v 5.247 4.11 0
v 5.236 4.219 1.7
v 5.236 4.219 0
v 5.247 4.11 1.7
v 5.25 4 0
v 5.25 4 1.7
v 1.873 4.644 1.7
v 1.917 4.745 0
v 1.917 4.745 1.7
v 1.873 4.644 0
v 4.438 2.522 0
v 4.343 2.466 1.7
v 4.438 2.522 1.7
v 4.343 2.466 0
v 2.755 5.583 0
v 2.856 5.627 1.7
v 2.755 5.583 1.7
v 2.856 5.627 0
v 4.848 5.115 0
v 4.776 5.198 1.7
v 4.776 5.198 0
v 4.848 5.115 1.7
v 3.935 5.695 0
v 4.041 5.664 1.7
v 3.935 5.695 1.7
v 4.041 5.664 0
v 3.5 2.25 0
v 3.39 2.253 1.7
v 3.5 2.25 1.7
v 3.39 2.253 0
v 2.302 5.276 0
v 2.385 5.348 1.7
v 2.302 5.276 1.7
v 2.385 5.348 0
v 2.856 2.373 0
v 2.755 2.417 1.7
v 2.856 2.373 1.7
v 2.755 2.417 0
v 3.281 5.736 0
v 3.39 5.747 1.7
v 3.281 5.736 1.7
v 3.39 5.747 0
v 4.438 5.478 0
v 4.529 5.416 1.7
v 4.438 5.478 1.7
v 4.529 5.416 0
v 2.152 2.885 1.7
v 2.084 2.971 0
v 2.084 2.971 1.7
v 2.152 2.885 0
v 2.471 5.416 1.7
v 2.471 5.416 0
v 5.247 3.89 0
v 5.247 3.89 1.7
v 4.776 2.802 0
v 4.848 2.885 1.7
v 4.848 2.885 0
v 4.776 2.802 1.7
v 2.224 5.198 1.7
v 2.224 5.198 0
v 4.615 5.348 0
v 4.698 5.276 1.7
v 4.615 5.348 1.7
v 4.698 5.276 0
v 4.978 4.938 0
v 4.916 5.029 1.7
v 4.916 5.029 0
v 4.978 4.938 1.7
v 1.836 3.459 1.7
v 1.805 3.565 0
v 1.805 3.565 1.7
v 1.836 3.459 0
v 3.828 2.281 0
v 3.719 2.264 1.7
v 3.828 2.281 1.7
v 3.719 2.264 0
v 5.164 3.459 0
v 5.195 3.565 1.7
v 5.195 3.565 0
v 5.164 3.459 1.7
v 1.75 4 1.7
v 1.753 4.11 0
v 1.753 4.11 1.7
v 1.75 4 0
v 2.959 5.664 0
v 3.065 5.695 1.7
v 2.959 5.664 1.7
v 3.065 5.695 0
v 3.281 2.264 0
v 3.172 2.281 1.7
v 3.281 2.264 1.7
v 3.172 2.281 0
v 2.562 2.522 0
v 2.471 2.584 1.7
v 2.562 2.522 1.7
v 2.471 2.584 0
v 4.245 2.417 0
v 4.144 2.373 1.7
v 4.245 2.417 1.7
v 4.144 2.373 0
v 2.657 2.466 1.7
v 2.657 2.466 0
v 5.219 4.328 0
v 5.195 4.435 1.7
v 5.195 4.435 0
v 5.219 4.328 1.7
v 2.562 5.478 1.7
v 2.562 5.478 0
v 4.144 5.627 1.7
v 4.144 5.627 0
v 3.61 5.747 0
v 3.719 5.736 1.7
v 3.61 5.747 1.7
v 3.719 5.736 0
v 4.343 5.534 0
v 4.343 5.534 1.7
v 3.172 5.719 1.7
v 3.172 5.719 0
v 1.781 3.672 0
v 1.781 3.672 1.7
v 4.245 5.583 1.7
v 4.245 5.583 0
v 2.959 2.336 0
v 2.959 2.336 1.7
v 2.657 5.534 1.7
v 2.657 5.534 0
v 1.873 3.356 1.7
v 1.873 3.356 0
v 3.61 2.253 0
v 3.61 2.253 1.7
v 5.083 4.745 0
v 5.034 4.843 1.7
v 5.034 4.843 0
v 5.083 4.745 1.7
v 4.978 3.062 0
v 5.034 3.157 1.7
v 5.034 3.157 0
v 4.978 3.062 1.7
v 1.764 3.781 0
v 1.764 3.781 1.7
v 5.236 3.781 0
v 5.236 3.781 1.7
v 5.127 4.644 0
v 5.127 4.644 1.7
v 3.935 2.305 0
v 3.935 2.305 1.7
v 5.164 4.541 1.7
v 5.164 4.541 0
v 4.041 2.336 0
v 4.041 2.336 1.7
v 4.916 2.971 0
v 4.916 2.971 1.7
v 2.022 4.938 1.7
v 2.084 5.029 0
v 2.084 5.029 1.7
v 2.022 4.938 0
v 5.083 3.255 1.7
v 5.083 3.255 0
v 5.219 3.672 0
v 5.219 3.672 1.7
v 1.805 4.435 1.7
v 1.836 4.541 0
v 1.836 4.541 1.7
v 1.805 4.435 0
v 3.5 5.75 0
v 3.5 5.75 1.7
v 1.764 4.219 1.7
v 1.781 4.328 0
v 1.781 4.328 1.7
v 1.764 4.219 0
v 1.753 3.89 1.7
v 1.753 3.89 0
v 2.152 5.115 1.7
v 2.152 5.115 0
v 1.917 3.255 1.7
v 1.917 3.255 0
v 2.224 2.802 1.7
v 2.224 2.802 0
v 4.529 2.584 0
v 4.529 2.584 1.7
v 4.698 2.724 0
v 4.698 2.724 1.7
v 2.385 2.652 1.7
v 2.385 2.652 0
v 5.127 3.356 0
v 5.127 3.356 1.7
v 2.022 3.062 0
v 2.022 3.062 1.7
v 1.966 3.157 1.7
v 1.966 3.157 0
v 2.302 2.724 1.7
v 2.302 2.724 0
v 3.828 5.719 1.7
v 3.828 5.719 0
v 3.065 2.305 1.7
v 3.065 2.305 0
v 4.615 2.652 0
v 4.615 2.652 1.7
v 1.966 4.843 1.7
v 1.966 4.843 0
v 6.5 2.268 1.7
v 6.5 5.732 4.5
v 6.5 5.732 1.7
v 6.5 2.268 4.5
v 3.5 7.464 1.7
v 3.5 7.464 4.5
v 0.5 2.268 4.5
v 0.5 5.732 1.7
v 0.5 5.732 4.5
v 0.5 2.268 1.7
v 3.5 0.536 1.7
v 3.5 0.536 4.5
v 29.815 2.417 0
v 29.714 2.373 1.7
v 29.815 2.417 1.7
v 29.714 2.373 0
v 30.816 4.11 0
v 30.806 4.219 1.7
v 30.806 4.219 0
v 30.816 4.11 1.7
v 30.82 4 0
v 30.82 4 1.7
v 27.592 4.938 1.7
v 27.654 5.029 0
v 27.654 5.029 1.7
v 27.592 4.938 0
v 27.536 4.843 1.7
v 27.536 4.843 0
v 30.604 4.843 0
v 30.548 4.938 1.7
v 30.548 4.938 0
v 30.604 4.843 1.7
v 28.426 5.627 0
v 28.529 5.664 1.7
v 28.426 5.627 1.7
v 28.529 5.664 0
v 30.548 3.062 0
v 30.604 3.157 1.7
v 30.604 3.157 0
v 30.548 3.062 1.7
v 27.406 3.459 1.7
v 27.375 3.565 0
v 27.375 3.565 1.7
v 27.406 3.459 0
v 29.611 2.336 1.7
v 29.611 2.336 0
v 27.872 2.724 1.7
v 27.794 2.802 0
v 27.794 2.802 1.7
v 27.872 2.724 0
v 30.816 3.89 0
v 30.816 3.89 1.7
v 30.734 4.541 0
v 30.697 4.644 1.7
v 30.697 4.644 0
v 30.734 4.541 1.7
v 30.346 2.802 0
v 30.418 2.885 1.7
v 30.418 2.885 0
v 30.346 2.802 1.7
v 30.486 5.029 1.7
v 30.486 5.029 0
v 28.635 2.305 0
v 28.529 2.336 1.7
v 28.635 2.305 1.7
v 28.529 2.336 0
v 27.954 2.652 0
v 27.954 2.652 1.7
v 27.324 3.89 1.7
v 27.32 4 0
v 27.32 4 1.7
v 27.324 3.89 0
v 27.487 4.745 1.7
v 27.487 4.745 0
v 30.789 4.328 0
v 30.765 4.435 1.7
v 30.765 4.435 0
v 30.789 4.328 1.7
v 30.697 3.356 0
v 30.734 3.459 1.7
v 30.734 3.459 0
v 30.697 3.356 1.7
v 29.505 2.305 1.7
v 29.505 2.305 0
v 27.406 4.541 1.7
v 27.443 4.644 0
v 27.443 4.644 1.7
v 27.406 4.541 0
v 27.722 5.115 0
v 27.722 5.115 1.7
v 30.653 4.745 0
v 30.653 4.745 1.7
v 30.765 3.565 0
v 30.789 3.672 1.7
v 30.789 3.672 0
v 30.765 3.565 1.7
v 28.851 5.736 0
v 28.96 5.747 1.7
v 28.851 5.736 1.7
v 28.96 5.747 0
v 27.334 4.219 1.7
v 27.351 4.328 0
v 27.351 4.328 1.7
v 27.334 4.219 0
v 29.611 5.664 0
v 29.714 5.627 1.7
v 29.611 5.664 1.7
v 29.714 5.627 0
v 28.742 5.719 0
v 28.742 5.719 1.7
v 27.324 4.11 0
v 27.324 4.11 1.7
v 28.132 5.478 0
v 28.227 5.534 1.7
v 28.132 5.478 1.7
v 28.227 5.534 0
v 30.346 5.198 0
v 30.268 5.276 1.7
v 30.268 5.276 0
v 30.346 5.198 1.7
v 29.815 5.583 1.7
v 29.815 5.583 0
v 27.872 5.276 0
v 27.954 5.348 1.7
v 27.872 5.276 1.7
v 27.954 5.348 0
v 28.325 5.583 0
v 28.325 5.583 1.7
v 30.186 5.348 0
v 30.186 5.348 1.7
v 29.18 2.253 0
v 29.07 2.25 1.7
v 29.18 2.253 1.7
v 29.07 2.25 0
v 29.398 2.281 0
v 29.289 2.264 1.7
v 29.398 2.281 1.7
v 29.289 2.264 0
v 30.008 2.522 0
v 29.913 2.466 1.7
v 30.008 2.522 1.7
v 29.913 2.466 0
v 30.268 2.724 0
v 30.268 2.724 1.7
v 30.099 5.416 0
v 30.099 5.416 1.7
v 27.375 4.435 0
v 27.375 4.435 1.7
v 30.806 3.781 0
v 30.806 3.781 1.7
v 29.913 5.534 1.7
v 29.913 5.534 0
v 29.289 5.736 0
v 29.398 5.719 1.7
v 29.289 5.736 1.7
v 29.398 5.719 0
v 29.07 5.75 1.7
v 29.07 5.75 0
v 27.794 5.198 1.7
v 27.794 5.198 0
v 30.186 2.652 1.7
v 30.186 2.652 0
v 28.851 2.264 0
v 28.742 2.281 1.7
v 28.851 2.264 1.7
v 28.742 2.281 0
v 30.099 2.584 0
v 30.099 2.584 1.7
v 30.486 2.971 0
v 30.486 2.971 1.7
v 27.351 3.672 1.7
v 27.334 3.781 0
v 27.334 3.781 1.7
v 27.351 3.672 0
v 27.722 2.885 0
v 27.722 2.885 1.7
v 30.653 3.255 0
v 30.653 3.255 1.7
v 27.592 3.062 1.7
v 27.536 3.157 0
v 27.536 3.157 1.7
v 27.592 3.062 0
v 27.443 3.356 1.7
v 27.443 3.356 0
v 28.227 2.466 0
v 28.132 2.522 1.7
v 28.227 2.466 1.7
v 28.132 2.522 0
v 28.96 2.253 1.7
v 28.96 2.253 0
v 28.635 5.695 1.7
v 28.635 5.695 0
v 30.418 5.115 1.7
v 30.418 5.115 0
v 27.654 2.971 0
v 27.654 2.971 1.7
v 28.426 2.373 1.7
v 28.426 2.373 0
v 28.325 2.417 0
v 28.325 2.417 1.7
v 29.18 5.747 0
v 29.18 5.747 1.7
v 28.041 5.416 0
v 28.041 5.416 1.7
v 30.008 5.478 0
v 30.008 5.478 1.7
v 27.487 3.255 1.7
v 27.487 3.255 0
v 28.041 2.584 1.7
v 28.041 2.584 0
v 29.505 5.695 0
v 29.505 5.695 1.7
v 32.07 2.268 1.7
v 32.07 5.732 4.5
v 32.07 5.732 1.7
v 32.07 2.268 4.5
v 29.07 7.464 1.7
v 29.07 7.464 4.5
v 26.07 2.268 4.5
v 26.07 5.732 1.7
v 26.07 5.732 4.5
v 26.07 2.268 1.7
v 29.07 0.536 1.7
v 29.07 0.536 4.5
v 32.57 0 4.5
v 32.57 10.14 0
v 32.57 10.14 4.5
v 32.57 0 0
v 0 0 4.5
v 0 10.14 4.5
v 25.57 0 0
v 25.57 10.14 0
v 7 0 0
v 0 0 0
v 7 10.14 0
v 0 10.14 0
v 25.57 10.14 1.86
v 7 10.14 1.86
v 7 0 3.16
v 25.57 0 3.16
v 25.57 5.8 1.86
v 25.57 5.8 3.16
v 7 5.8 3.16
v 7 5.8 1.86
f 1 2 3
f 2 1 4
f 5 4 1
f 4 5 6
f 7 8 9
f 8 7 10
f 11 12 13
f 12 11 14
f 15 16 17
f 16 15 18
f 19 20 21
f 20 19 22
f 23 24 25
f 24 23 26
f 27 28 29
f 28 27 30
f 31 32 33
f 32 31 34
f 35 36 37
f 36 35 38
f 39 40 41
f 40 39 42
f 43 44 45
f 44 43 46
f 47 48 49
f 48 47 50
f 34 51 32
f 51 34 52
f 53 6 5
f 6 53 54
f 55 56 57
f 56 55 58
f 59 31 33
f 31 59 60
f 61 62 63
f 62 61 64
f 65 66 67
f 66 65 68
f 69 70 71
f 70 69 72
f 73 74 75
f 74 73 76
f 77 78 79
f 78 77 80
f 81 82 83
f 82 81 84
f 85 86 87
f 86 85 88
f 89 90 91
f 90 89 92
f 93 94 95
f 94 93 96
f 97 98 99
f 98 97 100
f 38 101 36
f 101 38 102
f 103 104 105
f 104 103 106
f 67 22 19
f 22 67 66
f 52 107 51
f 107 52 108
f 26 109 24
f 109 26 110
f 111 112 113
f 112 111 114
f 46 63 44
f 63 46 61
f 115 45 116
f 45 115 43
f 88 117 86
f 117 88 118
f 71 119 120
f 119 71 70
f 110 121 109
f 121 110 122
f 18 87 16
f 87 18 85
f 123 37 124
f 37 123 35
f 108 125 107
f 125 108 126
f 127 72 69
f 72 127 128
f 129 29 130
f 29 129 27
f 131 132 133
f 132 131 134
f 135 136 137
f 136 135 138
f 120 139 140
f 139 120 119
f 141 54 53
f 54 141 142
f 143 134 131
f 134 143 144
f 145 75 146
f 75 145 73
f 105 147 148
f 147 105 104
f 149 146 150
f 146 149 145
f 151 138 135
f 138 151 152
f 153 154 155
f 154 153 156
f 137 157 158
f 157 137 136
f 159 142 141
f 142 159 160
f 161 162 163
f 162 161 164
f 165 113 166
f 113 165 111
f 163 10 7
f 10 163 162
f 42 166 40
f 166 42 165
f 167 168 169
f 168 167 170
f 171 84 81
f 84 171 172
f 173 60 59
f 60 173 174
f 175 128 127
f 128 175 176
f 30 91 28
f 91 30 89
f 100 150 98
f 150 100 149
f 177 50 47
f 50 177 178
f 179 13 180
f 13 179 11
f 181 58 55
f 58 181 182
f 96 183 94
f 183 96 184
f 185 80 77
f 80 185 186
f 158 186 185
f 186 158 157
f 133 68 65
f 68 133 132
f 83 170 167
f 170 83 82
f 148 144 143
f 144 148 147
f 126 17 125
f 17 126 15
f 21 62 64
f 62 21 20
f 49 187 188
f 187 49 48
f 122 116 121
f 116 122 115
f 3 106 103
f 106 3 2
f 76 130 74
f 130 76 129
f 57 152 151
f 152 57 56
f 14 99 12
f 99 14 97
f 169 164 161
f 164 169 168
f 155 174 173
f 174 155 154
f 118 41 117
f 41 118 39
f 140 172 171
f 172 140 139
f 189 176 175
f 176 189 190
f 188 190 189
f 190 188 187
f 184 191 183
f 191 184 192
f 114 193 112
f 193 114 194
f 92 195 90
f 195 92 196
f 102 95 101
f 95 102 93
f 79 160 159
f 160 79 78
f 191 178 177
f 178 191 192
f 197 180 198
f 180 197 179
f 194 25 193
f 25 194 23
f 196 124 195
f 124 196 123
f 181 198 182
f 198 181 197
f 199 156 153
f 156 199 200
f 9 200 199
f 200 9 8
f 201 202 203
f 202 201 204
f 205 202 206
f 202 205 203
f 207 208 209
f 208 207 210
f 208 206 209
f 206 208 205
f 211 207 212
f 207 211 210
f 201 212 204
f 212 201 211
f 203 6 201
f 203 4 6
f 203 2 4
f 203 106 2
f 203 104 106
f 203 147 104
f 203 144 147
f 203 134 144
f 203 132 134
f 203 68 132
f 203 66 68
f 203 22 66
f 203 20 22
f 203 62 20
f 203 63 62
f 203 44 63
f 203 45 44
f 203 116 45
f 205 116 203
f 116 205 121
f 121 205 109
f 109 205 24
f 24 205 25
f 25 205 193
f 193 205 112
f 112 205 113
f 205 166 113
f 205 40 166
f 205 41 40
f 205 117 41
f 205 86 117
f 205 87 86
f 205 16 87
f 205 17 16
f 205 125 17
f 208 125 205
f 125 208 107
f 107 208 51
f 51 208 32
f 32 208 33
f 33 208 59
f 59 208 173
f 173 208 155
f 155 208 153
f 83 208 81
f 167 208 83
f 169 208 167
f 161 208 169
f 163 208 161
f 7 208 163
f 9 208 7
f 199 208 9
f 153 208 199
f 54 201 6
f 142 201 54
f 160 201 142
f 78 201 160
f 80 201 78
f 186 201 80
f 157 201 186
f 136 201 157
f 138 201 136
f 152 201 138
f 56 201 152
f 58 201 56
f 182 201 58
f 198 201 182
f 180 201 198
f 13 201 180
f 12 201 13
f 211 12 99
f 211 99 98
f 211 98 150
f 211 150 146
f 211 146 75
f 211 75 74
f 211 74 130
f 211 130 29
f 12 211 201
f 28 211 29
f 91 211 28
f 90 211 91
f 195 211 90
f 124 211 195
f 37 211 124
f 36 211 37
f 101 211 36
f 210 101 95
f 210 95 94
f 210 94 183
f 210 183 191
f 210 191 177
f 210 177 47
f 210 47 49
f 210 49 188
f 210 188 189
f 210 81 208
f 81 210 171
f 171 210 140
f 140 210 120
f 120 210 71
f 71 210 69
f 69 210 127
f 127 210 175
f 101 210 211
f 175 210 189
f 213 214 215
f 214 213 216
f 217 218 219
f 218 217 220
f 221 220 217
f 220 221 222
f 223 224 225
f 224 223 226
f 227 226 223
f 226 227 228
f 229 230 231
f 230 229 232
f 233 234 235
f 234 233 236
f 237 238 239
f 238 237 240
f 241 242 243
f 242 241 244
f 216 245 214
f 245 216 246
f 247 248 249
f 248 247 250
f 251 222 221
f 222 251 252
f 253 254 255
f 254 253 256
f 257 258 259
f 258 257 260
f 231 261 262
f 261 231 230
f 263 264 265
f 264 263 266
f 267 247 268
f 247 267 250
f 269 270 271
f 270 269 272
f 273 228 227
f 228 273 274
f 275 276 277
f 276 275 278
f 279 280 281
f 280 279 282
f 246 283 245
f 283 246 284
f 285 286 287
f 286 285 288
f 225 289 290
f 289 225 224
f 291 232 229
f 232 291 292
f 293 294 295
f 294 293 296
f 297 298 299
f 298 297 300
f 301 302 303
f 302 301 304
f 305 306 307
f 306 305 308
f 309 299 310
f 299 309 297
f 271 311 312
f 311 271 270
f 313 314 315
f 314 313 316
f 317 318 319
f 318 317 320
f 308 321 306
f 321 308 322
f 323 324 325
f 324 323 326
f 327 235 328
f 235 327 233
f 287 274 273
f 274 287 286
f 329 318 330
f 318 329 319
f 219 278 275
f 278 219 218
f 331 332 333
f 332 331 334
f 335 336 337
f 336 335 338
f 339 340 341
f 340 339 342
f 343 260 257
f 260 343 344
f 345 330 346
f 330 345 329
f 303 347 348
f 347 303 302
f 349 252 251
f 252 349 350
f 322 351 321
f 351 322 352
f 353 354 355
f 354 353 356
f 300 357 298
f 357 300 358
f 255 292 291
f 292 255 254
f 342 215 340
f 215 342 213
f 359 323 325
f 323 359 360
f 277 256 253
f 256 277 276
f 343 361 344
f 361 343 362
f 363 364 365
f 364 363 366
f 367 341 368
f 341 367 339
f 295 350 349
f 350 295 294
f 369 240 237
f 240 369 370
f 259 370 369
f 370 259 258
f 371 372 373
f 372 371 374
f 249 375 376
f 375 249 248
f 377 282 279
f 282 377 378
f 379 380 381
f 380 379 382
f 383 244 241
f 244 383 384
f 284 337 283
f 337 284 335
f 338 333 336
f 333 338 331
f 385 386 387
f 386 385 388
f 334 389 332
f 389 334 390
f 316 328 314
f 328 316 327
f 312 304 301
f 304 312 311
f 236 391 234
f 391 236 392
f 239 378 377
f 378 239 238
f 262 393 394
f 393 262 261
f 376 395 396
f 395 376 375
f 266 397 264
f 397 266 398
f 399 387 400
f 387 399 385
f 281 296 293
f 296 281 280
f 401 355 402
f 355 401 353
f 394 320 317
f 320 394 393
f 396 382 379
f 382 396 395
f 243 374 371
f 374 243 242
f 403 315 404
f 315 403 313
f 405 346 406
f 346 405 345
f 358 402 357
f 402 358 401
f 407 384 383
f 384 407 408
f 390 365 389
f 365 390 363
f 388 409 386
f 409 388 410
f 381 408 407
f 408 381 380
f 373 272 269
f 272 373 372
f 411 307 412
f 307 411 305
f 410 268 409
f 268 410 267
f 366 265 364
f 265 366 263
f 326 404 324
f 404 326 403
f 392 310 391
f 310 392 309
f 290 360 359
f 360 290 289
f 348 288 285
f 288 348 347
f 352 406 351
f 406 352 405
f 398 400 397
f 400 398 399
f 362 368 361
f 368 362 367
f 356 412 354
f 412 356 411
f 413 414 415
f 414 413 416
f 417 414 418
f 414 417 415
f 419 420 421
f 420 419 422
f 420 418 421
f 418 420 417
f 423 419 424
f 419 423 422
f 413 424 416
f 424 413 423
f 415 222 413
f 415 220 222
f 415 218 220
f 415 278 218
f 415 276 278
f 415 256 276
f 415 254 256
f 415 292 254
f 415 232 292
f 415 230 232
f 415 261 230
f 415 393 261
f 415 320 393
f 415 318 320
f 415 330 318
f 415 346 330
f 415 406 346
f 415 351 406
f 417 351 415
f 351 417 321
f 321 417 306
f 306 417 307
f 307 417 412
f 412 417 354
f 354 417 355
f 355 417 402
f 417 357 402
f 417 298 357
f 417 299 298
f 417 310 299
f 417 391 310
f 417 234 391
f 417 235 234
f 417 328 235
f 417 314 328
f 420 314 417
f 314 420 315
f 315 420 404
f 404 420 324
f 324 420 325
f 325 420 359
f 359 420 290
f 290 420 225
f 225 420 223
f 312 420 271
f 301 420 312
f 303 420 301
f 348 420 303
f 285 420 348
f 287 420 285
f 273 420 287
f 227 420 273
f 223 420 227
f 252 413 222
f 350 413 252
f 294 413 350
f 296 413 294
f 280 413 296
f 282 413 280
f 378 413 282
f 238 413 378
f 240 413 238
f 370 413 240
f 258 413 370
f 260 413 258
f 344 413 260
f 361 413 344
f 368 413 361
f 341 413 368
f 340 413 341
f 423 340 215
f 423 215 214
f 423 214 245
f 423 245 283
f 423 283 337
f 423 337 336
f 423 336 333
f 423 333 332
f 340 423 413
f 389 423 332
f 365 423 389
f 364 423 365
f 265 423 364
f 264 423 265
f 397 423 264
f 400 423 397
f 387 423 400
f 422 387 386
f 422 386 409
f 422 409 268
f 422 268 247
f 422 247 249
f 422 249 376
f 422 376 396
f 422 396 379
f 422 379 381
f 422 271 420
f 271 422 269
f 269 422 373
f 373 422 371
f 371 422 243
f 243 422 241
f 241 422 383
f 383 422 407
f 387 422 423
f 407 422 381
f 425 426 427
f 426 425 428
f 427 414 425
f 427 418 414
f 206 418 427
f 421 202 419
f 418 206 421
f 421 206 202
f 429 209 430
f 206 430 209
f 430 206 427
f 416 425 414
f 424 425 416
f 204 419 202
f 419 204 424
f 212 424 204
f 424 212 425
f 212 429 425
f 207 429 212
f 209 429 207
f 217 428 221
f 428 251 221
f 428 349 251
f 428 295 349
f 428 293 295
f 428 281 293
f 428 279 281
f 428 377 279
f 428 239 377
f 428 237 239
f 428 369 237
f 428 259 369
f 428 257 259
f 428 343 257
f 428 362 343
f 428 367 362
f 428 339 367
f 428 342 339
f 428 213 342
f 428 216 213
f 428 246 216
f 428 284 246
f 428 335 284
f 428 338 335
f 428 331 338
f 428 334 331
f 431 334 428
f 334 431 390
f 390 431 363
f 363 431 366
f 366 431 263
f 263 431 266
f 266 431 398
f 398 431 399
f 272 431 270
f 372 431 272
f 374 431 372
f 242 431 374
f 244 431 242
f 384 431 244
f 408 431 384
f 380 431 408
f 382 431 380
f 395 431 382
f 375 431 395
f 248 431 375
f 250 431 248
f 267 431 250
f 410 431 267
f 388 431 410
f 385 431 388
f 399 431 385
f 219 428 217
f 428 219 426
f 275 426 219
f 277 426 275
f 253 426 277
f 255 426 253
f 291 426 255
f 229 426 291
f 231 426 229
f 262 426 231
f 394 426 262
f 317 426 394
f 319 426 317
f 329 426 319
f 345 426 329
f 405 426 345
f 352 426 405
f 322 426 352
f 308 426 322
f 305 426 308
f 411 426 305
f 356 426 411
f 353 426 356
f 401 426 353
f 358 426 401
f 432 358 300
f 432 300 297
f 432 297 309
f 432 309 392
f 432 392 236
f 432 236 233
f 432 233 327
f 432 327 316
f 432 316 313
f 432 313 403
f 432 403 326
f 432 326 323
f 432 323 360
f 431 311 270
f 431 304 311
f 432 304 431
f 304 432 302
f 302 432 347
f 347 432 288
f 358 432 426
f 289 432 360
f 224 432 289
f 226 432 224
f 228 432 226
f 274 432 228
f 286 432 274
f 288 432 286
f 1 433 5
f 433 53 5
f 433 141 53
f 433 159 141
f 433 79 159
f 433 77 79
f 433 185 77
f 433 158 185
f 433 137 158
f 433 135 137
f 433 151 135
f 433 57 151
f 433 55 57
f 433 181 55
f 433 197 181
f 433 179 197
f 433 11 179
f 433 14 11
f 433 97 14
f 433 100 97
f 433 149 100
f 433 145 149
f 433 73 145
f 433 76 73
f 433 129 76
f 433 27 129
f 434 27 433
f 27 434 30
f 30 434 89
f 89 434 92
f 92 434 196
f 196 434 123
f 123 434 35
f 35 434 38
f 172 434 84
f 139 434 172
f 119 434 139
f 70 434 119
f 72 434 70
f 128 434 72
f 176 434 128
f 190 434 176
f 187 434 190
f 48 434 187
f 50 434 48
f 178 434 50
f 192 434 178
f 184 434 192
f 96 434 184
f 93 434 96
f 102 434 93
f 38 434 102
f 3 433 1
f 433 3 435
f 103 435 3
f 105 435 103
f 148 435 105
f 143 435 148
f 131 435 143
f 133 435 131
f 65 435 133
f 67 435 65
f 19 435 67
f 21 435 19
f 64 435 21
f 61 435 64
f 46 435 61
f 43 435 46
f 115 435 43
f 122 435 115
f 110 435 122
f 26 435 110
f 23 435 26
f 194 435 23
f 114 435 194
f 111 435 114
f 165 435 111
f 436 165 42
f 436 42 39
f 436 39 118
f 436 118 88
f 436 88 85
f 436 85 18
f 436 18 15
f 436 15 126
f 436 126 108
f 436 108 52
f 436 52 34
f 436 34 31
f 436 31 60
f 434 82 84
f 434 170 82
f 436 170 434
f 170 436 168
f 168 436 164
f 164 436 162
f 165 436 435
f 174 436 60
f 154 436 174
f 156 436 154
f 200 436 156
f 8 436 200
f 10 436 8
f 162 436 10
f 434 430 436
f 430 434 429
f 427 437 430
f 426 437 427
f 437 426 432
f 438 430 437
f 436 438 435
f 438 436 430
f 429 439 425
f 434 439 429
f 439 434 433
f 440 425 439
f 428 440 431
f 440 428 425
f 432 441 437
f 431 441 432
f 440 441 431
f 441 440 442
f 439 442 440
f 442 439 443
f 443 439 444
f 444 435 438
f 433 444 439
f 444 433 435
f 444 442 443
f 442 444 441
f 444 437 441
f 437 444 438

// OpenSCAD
// file: ../assets/usb-charger/configurations.scad
usb_charger_asset_electronic_card_x_size = 17.57;
usb_charger_asset_electronic_card_y_size = 27.85;
usb_charger_asset_electronic_card_z_size = 0.87;
usb_charger_asset_usb_port_x_size = 9;
usb_charger_asset_usb_port_y_size = 7.39;
usb_charger_asset_usb_port_z_size = 3.29;
usb_charger_asset_draw_rounded_usb = true;
usb_charger_asset_usb_port_x_offset = 4.5;
usb_charger_asset_usb_port_y_offset = -1.36;
usb_charger_asset_fn = 20;
// file: ../configurations/global.scad
// external size
case_external_x_size = 90;
case_external_y_size = 140;
case_external_z_size = 38;
case_external_panes_thickness = 4.8;

facade_front_round_edges_radius = 5;
facade_throws_margin = 5;

facade_front_fixation_throws_diameter = 3.5;

// facade corners
facade_corners_offset_lenght = 9;
facade_corners_main_x_size = 19;
facade_corners_main_y_size = 19;
facade_corners_main_thickness = 11;

facade_fn = 100;


facade_controller_coords = [
    case_external_x_size / 2,
    case_external_y_size / 2 - 28,
];


// Screen frames
screen_frame_electronic_board_margin = 3;
screen_frame_throw_diameter = 3.5;
screen_frame_piece_z_size = 1.5;
screen_frame_piece_glass_embedding_margin = 1;
screen_frame_piece_glass_embedding_z_depth = 1;
screen_frame_facade_piece_z_size = 1;
screen_frame_fn = 100;

screen_glass_visible_zone_x_margin = 0.7;
screen_glass_visible_zone_y_margin = 0.7;
screen_glass_z_size = 1;

facade_screen_coords = [
    case_external_x_size / 2,
    case_external_y_size / 2 + 25,
];


// Generics
insert_throw_diameter = 4.2;
insert_throw_length = 6 + 2;


// Controller facade
controller_breadboard_x_size_point = 28;
controller_breadboard_y_size_point = 9;

controller_facade_z_size = 2;
controller_facade_button_throw_margin = 1;

controller_facade_border_rounded_border_1 = 5;
controller_facade_border_rounded_border_2 = 4;

controller_facade_with_border_x_size = 78;
controller_facade_with_border_y_size = 45;

controller_facade_border_throws_margin = 5;
controller_facade_border_fn = 80;


// Cross Button
controller_cross_button_x_y_size = 20;
controller_cross_button_z_size = 4;
controller_cross_button_thickness = 6;
controller_cross_button_round_edges_radius = 1;
controller_cross_button_support_x_y_size = 22;
controller_cross_button_support_z_size = 1;
controller_cross_button_fn = 150;


// A and B Buttons
controller_a_b_button_diameter = 7;
controller_a_b_button_z_size = 4;
controller_a_b_button_support_diameter = 9;
controller_a_b_button_support_z_size = 1;
controller_a_b_button_fn = 80;


// small Buttons
controller_small_button_diameter = 5;
controller_small_button_z_size = 3;
controller_small_button_support_diameter = 7;
controller_small_button_support_z_size = 1;
controller_small_button_fn = 80;

// Directional cross
controller_directional_cross_points_coords = [6, 5];
controller_start_button_points_coords = [14, 3];
controller_select_button_points_coords = [18, 3];
controller_menu_button_points_coords = [14, 7];
controller_option_button_points_coords = [18, 7];
controller_a_button_points_coords = [23, 4];
controller_b_button_points_coords = [27, 6];
controller_bolt_throws_list = [
    [2, 2],
    [2, 8],
    [10, 2],
    [10, 8],
    [27, 2],
    [23, 8],
];


// usb charget holder
usb_charger_support_total_x_size = 17.57 + 15;
usb_charger_support_total_y_size = 12;
usb_charger_support_total_z_size = 2;


usb_charger_fixation_support_z_size = 4.5;
usb_charger_encaps_x_size = 17.57 + 1;
usb_charger_encaps_y_size = 27.85 + 1;
usb_charger_encaps_z_size = 1;
usb_charger_facade_z_size = 12;
usb_charger_facade_x_fixation_spacing = 42;
usb_charger_throw_diameter = 3.5;
usb_charger_facade_holder_z_offset = 2.5; //
usb_charger_fixation_facade_y_margin = 0.5;
usb_charger_throw_offset_y = 4.5;
usb_charger_throw_offset_x = 3.5;
usb_charger_fadace_fn = 100;
// main file
include <../configurations/global.scad>
include <../assets/usb-charger/configurations.scad>

module usbChargerFixationPiece(
    support_total_x_size = usb_charger_support_total_x_size,
    support_total_y_size = usb_charger_support_total_y_size - abs(usb_charger_asset_usb_port_y_offset) - usb_charger_fixation_facade_y_margin,
    support_total_z_size = usb_charger_fixation_support_z_size,
    encaps_x_size = usb_charger_encaps_x_size,
    encaps_1_y_size = 5.8,
    encaps_1_z_size = usb_charger_asset_usb_port_z_size - (usb_charger_encaps_z_size - usb_charger_asset_electronic_card_z_size),
    encaps_2_y_size = 10,
    encaps_2_z_size = usb_charger_asset_usb_port_z_size - (usb_charger_encaps_z_size - usb_charger_asset_electronic_card_z_size) - 1.3,

    throw_offset_y = usb_charger_throw_offset_y - usb_charger_fixation_facade_y_margin,
    throw_offset_x = usb_charger_throw_offset_x,
    throw_diameter = usb_charger_throw_diameter,

    fadace_fn = usb_charger_fadace_fn
) {
    difference() {
        translate([0, 0, 0])
            cube([
                support_total_x_size,
                support_total_y_size,
                support_total_z_size,
            ]);

        // Encaps on usb
        translate([
            (support_total_x_size - encaps_x_size) / 2, -0.01, -0.01])
            cube([
                encaps_x_size,
                encaps_1_y_size + 0.01,
                encaps_1_z_size + 0.01,
            ]);

        // encaps rest
        translate([
            (support_total_x_size - encaps_x_size) / 2,
            encaps_1_y_size - 0.01,
            -0.01
        ])
            cube([
                encaps_x_size,
                encaps_2_y_size + 0.01,
                encaps_2_z_size + 0.01,
            ]);


        nut_encaps_diameter = 6;
        nut_encaps_depth = 2.8;
        // Throws
        translate([
            throw_offset_x,
            throw_offset_y,
            0
        ]) {
            cylinder(h = support_total_z_size * 4, d = throw_diameter, center = true, $fn = fadace_fn);
            translate([0,0,support_total_z_size - nut_encaps_depth])
                rotate([0,0,90])
                cylinder(h = 5, r = nut_encaps_diameter / 2 / cos(30) , $fn = 6);
        }
        
            
        translate([
            support_total_x_size - throw_offset_x,
            throw_offset_y,
            0
        ]) {
            cylinder(h = support_total_z_size * 4, d = throw_diameter, center = true, $fn = fadace_fn);
            translate([0,0,support_total_z_size - nut_encaps_depth])
                rotate([0,0,90])
                cylinder(h = 5, r = nut_encaps_diameter / 2 / cos(30) , $fn = 6);
        }

    }

}

usbChargerFixationPiece();
